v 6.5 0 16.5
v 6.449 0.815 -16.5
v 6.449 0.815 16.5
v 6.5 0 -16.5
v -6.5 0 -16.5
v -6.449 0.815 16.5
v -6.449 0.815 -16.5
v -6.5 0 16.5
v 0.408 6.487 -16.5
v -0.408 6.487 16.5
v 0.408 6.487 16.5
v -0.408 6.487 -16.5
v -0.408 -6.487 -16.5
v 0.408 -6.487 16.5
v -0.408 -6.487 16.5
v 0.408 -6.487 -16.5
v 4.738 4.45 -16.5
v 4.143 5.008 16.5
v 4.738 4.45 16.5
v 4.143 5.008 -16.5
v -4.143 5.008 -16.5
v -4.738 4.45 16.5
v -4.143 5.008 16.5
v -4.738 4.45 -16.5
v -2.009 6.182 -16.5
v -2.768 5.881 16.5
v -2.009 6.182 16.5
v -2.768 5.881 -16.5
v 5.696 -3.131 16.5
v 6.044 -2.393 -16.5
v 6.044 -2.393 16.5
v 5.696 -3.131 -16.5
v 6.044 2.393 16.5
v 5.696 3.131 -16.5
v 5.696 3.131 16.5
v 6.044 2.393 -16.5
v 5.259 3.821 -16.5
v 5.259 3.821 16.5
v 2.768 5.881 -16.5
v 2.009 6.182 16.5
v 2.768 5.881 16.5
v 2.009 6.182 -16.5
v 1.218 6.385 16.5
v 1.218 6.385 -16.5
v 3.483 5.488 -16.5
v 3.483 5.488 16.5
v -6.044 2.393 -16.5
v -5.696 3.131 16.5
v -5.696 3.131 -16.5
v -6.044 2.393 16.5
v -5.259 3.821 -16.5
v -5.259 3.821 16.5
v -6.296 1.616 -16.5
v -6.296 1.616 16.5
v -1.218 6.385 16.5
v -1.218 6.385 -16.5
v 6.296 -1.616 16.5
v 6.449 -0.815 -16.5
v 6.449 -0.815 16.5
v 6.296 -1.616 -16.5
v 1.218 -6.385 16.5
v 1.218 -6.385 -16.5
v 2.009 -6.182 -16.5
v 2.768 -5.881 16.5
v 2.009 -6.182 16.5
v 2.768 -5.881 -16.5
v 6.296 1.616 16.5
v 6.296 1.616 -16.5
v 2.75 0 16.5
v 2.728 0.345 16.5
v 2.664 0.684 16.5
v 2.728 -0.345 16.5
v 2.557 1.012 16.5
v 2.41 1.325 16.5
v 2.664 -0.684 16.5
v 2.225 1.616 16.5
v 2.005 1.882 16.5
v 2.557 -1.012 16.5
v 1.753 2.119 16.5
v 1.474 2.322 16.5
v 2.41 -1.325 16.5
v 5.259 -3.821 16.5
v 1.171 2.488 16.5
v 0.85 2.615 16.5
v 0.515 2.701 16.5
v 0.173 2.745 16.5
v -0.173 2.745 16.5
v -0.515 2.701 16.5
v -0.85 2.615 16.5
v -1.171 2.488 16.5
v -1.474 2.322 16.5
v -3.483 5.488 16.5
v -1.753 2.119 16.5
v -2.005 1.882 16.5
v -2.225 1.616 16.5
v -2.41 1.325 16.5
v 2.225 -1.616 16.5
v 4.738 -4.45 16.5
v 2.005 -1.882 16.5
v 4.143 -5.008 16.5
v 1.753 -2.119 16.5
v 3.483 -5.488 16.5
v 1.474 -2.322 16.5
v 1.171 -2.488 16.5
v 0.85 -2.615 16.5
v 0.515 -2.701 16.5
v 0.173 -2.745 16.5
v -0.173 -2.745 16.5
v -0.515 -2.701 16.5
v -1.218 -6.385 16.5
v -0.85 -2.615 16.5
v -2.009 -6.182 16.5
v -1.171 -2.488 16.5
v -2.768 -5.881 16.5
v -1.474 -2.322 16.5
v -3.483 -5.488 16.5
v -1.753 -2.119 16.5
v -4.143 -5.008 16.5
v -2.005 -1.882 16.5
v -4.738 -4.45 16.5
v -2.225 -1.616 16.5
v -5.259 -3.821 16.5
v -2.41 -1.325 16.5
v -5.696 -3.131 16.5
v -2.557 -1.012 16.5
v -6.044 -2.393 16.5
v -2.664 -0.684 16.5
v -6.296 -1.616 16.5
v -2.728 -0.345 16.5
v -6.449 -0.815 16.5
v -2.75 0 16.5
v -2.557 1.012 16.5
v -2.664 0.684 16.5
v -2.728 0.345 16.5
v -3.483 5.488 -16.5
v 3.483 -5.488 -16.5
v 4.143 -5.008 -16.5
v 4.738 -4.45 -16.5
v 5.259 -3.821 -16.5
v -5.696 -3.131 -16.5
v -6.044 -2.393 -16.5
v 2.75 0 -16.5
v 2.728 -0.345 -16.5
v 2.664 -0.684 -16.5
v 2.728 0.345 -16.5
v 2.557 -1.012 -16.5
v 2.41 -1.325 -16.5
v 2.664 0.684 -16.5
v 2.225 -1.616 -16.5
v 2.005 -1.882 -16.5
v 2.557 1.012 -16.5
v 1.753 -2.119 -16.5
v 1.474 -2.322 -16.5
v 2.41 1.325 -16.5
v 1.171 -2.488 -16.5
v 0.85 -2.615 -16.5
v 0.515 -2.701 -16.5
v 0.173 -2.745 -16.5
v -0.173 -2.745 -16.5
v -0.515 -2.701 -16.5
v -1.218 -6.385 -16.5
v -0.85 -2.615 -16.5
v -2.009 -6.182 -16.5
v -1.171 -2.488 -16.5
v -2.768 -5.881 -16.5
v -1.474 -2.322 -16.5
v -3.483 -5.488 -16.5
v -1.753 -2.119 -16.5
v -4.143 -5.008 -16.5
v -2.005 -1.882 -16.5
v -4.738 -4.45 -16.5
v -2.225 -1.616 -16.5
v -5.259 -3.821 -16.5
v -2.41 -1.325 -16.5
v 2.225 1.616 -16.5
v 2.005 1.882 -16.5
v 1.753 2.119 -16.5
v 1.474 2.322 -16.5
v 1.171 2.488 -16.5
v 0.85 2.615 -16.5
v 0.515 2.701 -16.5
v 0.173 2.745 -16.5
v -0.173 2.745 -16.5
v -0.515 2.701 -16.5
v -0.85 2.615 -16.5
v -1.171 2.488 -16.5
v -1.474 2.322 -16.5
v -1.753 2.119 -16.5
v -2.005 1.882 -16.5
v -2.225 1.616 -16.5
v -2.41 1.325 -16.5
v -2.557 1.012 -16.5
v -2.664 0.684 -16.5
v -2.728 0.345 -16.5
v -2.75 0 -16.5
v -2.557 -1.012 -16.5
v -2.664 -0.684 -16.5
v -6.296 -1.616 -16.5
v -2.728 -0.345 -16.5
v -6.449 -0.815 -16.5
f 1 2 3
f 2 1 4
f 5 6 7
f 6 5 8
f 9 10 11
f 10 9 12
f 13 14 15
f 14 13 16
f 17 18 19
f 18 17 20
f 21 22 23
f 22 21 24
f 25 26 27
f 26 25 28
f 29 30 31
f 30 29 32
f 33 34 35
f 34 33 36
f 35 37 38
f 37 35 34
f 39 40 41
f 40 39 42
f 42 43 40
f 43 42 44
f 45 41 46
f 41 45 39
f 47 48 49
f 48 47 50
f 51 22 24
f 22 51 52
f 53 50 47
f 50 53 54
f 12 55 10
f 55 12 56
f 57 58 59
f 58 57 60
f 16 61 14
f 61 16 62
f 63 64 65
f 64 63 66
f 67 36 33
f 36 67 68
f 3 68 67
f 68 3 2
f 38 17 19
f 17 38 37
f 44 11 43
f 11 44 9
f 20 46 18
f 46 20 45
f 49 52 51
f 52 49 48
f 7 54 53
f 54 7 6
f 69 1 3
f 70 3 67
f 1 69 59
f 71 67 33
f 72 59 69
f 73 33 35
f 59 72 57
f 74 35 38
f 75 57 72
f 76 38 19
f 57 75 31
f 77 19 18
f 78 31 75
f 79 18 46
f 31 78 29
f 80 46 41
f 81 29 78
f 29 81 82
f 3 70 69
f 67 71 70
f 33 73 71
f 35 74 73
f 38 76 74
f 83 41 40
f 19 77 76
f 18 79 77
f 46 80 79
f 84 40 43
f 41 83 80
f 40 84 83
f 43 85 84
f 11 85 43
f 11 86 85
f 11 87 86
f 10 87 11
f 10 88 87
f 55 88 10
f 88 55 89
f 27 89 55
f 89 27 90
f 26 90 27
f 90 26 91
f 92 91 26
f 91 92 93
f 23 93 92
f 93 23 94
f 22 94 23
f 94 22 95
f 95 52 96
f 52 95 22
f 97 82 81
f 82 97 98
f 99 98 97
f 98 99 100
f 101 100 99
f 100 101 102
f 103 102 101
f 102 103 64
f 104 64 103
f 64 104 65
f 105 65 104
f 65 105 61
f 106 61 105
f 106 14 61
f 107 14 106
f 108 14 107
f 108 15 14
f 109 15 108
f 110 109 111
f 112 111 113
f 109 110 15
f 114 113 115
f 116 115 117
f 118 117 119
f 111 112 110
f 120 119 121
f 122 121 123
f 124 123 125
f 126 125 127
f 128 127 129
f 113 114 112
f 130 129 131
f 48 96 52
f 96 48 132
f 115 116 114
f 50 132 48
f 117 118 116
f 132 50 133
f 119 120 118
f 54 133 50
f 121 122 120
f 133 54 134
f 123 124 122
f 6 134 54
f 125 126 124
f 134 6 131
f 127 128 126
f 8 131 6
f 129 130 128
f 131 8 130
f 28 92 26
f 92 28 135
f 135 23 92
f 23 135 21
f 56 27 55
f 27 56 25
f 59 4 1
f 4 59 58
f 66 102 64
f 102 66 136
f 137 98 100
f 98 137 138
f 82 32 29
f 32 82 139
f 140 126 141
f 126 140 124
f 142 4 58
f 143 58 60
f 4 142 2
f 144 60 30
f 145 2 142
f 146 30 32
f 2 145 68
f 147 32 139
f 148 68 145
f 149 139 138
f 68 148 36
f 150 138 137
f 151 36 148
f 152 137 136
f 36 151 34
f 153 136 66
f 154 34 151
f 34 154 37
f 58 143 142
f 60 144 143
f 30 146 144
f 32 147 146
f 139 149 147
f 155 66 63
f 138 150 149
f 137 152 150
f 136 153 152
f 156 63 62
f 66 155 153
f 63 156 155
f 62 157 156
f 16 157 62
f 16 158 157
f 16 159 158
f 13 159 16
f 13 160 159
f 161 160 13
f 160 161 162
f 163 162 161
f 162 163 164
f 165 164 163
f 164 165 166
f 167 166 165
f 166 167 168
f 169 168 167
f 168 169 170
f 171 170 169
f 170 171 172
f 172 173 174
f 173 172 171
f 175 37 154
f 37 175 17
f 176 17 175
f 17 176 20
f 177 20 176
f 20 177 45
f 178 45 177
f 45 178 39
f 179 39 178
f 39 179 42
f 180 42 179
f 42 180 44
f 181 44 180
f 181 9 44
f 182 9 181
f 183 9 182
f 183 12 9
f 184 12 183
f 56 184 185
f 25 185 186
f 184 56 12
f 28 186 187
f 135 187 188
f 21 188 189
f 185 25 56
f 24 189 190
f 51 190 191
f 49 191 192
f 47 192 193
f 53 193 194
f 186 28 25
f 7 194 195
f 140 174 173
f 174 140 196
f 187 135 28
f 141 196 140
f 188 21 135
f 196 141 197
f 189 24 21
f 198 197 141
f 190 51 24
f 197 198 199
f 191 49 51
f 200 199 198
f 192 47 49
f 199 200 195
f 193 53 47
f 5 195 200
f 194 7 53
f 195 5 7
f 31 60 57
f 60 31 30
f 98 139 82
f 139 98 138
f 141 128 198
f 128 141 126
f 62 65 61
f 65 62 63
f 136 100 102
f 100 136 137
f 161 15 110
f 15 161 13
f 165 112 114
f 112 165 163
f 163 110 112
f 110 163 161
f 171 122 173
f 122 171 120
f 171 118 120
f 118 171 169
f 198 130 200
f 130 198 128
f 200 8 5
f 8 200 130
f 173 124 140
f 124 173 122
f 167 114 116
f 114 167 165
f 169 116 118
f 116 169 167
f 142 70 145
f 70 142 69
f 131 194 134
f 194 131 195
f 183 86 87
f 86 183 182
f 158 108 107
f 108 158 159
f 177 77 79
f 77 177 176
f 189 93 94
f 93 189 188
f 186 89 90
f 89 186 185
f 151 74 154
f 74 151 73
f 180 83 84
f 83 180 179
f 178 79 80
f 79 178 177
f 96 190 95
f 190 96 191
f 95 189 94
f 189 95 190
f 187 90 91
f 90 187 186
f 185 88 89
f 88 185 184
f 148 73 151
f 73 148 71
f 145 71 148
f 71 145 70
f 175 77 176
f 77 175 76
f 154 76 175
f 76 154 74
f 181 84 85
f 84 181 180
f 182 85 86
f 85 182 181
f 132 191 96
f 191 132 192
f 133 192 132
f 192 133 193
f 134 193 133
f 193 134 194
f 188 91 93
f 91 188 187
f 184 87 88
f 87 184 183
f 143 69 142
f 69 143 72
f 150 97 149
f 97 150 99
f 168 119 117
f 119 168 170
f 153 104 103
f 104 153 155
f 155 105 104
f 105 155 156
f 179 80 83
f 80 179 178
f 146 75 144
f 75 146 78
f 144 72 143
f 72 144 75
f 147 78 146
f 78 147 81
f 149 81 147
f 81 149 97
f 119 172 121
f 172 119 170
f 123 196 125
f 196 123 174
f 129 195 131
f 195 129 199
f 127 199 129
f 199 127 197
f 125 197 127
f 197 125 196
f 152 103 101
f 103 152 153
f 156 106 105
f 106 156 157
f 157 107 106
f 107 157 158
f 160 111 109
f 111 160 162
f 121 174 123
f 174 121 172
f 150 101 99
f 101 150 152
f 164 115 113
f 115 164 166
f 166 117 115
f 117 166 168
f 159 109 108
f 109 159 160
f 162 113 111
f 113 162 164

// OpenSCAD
$fn = 50;


difference() {
	union() {
		translate(v = [0, 0, -16.5000000000]) {
			cylinder(h = 33, r = 6.5000000000);
		}
	}
	union() {
		translate(v = [0, 0, -100.0000000000]) {
			cylinder(h = 200, r = 2.7500000000);
		}
	}
}
